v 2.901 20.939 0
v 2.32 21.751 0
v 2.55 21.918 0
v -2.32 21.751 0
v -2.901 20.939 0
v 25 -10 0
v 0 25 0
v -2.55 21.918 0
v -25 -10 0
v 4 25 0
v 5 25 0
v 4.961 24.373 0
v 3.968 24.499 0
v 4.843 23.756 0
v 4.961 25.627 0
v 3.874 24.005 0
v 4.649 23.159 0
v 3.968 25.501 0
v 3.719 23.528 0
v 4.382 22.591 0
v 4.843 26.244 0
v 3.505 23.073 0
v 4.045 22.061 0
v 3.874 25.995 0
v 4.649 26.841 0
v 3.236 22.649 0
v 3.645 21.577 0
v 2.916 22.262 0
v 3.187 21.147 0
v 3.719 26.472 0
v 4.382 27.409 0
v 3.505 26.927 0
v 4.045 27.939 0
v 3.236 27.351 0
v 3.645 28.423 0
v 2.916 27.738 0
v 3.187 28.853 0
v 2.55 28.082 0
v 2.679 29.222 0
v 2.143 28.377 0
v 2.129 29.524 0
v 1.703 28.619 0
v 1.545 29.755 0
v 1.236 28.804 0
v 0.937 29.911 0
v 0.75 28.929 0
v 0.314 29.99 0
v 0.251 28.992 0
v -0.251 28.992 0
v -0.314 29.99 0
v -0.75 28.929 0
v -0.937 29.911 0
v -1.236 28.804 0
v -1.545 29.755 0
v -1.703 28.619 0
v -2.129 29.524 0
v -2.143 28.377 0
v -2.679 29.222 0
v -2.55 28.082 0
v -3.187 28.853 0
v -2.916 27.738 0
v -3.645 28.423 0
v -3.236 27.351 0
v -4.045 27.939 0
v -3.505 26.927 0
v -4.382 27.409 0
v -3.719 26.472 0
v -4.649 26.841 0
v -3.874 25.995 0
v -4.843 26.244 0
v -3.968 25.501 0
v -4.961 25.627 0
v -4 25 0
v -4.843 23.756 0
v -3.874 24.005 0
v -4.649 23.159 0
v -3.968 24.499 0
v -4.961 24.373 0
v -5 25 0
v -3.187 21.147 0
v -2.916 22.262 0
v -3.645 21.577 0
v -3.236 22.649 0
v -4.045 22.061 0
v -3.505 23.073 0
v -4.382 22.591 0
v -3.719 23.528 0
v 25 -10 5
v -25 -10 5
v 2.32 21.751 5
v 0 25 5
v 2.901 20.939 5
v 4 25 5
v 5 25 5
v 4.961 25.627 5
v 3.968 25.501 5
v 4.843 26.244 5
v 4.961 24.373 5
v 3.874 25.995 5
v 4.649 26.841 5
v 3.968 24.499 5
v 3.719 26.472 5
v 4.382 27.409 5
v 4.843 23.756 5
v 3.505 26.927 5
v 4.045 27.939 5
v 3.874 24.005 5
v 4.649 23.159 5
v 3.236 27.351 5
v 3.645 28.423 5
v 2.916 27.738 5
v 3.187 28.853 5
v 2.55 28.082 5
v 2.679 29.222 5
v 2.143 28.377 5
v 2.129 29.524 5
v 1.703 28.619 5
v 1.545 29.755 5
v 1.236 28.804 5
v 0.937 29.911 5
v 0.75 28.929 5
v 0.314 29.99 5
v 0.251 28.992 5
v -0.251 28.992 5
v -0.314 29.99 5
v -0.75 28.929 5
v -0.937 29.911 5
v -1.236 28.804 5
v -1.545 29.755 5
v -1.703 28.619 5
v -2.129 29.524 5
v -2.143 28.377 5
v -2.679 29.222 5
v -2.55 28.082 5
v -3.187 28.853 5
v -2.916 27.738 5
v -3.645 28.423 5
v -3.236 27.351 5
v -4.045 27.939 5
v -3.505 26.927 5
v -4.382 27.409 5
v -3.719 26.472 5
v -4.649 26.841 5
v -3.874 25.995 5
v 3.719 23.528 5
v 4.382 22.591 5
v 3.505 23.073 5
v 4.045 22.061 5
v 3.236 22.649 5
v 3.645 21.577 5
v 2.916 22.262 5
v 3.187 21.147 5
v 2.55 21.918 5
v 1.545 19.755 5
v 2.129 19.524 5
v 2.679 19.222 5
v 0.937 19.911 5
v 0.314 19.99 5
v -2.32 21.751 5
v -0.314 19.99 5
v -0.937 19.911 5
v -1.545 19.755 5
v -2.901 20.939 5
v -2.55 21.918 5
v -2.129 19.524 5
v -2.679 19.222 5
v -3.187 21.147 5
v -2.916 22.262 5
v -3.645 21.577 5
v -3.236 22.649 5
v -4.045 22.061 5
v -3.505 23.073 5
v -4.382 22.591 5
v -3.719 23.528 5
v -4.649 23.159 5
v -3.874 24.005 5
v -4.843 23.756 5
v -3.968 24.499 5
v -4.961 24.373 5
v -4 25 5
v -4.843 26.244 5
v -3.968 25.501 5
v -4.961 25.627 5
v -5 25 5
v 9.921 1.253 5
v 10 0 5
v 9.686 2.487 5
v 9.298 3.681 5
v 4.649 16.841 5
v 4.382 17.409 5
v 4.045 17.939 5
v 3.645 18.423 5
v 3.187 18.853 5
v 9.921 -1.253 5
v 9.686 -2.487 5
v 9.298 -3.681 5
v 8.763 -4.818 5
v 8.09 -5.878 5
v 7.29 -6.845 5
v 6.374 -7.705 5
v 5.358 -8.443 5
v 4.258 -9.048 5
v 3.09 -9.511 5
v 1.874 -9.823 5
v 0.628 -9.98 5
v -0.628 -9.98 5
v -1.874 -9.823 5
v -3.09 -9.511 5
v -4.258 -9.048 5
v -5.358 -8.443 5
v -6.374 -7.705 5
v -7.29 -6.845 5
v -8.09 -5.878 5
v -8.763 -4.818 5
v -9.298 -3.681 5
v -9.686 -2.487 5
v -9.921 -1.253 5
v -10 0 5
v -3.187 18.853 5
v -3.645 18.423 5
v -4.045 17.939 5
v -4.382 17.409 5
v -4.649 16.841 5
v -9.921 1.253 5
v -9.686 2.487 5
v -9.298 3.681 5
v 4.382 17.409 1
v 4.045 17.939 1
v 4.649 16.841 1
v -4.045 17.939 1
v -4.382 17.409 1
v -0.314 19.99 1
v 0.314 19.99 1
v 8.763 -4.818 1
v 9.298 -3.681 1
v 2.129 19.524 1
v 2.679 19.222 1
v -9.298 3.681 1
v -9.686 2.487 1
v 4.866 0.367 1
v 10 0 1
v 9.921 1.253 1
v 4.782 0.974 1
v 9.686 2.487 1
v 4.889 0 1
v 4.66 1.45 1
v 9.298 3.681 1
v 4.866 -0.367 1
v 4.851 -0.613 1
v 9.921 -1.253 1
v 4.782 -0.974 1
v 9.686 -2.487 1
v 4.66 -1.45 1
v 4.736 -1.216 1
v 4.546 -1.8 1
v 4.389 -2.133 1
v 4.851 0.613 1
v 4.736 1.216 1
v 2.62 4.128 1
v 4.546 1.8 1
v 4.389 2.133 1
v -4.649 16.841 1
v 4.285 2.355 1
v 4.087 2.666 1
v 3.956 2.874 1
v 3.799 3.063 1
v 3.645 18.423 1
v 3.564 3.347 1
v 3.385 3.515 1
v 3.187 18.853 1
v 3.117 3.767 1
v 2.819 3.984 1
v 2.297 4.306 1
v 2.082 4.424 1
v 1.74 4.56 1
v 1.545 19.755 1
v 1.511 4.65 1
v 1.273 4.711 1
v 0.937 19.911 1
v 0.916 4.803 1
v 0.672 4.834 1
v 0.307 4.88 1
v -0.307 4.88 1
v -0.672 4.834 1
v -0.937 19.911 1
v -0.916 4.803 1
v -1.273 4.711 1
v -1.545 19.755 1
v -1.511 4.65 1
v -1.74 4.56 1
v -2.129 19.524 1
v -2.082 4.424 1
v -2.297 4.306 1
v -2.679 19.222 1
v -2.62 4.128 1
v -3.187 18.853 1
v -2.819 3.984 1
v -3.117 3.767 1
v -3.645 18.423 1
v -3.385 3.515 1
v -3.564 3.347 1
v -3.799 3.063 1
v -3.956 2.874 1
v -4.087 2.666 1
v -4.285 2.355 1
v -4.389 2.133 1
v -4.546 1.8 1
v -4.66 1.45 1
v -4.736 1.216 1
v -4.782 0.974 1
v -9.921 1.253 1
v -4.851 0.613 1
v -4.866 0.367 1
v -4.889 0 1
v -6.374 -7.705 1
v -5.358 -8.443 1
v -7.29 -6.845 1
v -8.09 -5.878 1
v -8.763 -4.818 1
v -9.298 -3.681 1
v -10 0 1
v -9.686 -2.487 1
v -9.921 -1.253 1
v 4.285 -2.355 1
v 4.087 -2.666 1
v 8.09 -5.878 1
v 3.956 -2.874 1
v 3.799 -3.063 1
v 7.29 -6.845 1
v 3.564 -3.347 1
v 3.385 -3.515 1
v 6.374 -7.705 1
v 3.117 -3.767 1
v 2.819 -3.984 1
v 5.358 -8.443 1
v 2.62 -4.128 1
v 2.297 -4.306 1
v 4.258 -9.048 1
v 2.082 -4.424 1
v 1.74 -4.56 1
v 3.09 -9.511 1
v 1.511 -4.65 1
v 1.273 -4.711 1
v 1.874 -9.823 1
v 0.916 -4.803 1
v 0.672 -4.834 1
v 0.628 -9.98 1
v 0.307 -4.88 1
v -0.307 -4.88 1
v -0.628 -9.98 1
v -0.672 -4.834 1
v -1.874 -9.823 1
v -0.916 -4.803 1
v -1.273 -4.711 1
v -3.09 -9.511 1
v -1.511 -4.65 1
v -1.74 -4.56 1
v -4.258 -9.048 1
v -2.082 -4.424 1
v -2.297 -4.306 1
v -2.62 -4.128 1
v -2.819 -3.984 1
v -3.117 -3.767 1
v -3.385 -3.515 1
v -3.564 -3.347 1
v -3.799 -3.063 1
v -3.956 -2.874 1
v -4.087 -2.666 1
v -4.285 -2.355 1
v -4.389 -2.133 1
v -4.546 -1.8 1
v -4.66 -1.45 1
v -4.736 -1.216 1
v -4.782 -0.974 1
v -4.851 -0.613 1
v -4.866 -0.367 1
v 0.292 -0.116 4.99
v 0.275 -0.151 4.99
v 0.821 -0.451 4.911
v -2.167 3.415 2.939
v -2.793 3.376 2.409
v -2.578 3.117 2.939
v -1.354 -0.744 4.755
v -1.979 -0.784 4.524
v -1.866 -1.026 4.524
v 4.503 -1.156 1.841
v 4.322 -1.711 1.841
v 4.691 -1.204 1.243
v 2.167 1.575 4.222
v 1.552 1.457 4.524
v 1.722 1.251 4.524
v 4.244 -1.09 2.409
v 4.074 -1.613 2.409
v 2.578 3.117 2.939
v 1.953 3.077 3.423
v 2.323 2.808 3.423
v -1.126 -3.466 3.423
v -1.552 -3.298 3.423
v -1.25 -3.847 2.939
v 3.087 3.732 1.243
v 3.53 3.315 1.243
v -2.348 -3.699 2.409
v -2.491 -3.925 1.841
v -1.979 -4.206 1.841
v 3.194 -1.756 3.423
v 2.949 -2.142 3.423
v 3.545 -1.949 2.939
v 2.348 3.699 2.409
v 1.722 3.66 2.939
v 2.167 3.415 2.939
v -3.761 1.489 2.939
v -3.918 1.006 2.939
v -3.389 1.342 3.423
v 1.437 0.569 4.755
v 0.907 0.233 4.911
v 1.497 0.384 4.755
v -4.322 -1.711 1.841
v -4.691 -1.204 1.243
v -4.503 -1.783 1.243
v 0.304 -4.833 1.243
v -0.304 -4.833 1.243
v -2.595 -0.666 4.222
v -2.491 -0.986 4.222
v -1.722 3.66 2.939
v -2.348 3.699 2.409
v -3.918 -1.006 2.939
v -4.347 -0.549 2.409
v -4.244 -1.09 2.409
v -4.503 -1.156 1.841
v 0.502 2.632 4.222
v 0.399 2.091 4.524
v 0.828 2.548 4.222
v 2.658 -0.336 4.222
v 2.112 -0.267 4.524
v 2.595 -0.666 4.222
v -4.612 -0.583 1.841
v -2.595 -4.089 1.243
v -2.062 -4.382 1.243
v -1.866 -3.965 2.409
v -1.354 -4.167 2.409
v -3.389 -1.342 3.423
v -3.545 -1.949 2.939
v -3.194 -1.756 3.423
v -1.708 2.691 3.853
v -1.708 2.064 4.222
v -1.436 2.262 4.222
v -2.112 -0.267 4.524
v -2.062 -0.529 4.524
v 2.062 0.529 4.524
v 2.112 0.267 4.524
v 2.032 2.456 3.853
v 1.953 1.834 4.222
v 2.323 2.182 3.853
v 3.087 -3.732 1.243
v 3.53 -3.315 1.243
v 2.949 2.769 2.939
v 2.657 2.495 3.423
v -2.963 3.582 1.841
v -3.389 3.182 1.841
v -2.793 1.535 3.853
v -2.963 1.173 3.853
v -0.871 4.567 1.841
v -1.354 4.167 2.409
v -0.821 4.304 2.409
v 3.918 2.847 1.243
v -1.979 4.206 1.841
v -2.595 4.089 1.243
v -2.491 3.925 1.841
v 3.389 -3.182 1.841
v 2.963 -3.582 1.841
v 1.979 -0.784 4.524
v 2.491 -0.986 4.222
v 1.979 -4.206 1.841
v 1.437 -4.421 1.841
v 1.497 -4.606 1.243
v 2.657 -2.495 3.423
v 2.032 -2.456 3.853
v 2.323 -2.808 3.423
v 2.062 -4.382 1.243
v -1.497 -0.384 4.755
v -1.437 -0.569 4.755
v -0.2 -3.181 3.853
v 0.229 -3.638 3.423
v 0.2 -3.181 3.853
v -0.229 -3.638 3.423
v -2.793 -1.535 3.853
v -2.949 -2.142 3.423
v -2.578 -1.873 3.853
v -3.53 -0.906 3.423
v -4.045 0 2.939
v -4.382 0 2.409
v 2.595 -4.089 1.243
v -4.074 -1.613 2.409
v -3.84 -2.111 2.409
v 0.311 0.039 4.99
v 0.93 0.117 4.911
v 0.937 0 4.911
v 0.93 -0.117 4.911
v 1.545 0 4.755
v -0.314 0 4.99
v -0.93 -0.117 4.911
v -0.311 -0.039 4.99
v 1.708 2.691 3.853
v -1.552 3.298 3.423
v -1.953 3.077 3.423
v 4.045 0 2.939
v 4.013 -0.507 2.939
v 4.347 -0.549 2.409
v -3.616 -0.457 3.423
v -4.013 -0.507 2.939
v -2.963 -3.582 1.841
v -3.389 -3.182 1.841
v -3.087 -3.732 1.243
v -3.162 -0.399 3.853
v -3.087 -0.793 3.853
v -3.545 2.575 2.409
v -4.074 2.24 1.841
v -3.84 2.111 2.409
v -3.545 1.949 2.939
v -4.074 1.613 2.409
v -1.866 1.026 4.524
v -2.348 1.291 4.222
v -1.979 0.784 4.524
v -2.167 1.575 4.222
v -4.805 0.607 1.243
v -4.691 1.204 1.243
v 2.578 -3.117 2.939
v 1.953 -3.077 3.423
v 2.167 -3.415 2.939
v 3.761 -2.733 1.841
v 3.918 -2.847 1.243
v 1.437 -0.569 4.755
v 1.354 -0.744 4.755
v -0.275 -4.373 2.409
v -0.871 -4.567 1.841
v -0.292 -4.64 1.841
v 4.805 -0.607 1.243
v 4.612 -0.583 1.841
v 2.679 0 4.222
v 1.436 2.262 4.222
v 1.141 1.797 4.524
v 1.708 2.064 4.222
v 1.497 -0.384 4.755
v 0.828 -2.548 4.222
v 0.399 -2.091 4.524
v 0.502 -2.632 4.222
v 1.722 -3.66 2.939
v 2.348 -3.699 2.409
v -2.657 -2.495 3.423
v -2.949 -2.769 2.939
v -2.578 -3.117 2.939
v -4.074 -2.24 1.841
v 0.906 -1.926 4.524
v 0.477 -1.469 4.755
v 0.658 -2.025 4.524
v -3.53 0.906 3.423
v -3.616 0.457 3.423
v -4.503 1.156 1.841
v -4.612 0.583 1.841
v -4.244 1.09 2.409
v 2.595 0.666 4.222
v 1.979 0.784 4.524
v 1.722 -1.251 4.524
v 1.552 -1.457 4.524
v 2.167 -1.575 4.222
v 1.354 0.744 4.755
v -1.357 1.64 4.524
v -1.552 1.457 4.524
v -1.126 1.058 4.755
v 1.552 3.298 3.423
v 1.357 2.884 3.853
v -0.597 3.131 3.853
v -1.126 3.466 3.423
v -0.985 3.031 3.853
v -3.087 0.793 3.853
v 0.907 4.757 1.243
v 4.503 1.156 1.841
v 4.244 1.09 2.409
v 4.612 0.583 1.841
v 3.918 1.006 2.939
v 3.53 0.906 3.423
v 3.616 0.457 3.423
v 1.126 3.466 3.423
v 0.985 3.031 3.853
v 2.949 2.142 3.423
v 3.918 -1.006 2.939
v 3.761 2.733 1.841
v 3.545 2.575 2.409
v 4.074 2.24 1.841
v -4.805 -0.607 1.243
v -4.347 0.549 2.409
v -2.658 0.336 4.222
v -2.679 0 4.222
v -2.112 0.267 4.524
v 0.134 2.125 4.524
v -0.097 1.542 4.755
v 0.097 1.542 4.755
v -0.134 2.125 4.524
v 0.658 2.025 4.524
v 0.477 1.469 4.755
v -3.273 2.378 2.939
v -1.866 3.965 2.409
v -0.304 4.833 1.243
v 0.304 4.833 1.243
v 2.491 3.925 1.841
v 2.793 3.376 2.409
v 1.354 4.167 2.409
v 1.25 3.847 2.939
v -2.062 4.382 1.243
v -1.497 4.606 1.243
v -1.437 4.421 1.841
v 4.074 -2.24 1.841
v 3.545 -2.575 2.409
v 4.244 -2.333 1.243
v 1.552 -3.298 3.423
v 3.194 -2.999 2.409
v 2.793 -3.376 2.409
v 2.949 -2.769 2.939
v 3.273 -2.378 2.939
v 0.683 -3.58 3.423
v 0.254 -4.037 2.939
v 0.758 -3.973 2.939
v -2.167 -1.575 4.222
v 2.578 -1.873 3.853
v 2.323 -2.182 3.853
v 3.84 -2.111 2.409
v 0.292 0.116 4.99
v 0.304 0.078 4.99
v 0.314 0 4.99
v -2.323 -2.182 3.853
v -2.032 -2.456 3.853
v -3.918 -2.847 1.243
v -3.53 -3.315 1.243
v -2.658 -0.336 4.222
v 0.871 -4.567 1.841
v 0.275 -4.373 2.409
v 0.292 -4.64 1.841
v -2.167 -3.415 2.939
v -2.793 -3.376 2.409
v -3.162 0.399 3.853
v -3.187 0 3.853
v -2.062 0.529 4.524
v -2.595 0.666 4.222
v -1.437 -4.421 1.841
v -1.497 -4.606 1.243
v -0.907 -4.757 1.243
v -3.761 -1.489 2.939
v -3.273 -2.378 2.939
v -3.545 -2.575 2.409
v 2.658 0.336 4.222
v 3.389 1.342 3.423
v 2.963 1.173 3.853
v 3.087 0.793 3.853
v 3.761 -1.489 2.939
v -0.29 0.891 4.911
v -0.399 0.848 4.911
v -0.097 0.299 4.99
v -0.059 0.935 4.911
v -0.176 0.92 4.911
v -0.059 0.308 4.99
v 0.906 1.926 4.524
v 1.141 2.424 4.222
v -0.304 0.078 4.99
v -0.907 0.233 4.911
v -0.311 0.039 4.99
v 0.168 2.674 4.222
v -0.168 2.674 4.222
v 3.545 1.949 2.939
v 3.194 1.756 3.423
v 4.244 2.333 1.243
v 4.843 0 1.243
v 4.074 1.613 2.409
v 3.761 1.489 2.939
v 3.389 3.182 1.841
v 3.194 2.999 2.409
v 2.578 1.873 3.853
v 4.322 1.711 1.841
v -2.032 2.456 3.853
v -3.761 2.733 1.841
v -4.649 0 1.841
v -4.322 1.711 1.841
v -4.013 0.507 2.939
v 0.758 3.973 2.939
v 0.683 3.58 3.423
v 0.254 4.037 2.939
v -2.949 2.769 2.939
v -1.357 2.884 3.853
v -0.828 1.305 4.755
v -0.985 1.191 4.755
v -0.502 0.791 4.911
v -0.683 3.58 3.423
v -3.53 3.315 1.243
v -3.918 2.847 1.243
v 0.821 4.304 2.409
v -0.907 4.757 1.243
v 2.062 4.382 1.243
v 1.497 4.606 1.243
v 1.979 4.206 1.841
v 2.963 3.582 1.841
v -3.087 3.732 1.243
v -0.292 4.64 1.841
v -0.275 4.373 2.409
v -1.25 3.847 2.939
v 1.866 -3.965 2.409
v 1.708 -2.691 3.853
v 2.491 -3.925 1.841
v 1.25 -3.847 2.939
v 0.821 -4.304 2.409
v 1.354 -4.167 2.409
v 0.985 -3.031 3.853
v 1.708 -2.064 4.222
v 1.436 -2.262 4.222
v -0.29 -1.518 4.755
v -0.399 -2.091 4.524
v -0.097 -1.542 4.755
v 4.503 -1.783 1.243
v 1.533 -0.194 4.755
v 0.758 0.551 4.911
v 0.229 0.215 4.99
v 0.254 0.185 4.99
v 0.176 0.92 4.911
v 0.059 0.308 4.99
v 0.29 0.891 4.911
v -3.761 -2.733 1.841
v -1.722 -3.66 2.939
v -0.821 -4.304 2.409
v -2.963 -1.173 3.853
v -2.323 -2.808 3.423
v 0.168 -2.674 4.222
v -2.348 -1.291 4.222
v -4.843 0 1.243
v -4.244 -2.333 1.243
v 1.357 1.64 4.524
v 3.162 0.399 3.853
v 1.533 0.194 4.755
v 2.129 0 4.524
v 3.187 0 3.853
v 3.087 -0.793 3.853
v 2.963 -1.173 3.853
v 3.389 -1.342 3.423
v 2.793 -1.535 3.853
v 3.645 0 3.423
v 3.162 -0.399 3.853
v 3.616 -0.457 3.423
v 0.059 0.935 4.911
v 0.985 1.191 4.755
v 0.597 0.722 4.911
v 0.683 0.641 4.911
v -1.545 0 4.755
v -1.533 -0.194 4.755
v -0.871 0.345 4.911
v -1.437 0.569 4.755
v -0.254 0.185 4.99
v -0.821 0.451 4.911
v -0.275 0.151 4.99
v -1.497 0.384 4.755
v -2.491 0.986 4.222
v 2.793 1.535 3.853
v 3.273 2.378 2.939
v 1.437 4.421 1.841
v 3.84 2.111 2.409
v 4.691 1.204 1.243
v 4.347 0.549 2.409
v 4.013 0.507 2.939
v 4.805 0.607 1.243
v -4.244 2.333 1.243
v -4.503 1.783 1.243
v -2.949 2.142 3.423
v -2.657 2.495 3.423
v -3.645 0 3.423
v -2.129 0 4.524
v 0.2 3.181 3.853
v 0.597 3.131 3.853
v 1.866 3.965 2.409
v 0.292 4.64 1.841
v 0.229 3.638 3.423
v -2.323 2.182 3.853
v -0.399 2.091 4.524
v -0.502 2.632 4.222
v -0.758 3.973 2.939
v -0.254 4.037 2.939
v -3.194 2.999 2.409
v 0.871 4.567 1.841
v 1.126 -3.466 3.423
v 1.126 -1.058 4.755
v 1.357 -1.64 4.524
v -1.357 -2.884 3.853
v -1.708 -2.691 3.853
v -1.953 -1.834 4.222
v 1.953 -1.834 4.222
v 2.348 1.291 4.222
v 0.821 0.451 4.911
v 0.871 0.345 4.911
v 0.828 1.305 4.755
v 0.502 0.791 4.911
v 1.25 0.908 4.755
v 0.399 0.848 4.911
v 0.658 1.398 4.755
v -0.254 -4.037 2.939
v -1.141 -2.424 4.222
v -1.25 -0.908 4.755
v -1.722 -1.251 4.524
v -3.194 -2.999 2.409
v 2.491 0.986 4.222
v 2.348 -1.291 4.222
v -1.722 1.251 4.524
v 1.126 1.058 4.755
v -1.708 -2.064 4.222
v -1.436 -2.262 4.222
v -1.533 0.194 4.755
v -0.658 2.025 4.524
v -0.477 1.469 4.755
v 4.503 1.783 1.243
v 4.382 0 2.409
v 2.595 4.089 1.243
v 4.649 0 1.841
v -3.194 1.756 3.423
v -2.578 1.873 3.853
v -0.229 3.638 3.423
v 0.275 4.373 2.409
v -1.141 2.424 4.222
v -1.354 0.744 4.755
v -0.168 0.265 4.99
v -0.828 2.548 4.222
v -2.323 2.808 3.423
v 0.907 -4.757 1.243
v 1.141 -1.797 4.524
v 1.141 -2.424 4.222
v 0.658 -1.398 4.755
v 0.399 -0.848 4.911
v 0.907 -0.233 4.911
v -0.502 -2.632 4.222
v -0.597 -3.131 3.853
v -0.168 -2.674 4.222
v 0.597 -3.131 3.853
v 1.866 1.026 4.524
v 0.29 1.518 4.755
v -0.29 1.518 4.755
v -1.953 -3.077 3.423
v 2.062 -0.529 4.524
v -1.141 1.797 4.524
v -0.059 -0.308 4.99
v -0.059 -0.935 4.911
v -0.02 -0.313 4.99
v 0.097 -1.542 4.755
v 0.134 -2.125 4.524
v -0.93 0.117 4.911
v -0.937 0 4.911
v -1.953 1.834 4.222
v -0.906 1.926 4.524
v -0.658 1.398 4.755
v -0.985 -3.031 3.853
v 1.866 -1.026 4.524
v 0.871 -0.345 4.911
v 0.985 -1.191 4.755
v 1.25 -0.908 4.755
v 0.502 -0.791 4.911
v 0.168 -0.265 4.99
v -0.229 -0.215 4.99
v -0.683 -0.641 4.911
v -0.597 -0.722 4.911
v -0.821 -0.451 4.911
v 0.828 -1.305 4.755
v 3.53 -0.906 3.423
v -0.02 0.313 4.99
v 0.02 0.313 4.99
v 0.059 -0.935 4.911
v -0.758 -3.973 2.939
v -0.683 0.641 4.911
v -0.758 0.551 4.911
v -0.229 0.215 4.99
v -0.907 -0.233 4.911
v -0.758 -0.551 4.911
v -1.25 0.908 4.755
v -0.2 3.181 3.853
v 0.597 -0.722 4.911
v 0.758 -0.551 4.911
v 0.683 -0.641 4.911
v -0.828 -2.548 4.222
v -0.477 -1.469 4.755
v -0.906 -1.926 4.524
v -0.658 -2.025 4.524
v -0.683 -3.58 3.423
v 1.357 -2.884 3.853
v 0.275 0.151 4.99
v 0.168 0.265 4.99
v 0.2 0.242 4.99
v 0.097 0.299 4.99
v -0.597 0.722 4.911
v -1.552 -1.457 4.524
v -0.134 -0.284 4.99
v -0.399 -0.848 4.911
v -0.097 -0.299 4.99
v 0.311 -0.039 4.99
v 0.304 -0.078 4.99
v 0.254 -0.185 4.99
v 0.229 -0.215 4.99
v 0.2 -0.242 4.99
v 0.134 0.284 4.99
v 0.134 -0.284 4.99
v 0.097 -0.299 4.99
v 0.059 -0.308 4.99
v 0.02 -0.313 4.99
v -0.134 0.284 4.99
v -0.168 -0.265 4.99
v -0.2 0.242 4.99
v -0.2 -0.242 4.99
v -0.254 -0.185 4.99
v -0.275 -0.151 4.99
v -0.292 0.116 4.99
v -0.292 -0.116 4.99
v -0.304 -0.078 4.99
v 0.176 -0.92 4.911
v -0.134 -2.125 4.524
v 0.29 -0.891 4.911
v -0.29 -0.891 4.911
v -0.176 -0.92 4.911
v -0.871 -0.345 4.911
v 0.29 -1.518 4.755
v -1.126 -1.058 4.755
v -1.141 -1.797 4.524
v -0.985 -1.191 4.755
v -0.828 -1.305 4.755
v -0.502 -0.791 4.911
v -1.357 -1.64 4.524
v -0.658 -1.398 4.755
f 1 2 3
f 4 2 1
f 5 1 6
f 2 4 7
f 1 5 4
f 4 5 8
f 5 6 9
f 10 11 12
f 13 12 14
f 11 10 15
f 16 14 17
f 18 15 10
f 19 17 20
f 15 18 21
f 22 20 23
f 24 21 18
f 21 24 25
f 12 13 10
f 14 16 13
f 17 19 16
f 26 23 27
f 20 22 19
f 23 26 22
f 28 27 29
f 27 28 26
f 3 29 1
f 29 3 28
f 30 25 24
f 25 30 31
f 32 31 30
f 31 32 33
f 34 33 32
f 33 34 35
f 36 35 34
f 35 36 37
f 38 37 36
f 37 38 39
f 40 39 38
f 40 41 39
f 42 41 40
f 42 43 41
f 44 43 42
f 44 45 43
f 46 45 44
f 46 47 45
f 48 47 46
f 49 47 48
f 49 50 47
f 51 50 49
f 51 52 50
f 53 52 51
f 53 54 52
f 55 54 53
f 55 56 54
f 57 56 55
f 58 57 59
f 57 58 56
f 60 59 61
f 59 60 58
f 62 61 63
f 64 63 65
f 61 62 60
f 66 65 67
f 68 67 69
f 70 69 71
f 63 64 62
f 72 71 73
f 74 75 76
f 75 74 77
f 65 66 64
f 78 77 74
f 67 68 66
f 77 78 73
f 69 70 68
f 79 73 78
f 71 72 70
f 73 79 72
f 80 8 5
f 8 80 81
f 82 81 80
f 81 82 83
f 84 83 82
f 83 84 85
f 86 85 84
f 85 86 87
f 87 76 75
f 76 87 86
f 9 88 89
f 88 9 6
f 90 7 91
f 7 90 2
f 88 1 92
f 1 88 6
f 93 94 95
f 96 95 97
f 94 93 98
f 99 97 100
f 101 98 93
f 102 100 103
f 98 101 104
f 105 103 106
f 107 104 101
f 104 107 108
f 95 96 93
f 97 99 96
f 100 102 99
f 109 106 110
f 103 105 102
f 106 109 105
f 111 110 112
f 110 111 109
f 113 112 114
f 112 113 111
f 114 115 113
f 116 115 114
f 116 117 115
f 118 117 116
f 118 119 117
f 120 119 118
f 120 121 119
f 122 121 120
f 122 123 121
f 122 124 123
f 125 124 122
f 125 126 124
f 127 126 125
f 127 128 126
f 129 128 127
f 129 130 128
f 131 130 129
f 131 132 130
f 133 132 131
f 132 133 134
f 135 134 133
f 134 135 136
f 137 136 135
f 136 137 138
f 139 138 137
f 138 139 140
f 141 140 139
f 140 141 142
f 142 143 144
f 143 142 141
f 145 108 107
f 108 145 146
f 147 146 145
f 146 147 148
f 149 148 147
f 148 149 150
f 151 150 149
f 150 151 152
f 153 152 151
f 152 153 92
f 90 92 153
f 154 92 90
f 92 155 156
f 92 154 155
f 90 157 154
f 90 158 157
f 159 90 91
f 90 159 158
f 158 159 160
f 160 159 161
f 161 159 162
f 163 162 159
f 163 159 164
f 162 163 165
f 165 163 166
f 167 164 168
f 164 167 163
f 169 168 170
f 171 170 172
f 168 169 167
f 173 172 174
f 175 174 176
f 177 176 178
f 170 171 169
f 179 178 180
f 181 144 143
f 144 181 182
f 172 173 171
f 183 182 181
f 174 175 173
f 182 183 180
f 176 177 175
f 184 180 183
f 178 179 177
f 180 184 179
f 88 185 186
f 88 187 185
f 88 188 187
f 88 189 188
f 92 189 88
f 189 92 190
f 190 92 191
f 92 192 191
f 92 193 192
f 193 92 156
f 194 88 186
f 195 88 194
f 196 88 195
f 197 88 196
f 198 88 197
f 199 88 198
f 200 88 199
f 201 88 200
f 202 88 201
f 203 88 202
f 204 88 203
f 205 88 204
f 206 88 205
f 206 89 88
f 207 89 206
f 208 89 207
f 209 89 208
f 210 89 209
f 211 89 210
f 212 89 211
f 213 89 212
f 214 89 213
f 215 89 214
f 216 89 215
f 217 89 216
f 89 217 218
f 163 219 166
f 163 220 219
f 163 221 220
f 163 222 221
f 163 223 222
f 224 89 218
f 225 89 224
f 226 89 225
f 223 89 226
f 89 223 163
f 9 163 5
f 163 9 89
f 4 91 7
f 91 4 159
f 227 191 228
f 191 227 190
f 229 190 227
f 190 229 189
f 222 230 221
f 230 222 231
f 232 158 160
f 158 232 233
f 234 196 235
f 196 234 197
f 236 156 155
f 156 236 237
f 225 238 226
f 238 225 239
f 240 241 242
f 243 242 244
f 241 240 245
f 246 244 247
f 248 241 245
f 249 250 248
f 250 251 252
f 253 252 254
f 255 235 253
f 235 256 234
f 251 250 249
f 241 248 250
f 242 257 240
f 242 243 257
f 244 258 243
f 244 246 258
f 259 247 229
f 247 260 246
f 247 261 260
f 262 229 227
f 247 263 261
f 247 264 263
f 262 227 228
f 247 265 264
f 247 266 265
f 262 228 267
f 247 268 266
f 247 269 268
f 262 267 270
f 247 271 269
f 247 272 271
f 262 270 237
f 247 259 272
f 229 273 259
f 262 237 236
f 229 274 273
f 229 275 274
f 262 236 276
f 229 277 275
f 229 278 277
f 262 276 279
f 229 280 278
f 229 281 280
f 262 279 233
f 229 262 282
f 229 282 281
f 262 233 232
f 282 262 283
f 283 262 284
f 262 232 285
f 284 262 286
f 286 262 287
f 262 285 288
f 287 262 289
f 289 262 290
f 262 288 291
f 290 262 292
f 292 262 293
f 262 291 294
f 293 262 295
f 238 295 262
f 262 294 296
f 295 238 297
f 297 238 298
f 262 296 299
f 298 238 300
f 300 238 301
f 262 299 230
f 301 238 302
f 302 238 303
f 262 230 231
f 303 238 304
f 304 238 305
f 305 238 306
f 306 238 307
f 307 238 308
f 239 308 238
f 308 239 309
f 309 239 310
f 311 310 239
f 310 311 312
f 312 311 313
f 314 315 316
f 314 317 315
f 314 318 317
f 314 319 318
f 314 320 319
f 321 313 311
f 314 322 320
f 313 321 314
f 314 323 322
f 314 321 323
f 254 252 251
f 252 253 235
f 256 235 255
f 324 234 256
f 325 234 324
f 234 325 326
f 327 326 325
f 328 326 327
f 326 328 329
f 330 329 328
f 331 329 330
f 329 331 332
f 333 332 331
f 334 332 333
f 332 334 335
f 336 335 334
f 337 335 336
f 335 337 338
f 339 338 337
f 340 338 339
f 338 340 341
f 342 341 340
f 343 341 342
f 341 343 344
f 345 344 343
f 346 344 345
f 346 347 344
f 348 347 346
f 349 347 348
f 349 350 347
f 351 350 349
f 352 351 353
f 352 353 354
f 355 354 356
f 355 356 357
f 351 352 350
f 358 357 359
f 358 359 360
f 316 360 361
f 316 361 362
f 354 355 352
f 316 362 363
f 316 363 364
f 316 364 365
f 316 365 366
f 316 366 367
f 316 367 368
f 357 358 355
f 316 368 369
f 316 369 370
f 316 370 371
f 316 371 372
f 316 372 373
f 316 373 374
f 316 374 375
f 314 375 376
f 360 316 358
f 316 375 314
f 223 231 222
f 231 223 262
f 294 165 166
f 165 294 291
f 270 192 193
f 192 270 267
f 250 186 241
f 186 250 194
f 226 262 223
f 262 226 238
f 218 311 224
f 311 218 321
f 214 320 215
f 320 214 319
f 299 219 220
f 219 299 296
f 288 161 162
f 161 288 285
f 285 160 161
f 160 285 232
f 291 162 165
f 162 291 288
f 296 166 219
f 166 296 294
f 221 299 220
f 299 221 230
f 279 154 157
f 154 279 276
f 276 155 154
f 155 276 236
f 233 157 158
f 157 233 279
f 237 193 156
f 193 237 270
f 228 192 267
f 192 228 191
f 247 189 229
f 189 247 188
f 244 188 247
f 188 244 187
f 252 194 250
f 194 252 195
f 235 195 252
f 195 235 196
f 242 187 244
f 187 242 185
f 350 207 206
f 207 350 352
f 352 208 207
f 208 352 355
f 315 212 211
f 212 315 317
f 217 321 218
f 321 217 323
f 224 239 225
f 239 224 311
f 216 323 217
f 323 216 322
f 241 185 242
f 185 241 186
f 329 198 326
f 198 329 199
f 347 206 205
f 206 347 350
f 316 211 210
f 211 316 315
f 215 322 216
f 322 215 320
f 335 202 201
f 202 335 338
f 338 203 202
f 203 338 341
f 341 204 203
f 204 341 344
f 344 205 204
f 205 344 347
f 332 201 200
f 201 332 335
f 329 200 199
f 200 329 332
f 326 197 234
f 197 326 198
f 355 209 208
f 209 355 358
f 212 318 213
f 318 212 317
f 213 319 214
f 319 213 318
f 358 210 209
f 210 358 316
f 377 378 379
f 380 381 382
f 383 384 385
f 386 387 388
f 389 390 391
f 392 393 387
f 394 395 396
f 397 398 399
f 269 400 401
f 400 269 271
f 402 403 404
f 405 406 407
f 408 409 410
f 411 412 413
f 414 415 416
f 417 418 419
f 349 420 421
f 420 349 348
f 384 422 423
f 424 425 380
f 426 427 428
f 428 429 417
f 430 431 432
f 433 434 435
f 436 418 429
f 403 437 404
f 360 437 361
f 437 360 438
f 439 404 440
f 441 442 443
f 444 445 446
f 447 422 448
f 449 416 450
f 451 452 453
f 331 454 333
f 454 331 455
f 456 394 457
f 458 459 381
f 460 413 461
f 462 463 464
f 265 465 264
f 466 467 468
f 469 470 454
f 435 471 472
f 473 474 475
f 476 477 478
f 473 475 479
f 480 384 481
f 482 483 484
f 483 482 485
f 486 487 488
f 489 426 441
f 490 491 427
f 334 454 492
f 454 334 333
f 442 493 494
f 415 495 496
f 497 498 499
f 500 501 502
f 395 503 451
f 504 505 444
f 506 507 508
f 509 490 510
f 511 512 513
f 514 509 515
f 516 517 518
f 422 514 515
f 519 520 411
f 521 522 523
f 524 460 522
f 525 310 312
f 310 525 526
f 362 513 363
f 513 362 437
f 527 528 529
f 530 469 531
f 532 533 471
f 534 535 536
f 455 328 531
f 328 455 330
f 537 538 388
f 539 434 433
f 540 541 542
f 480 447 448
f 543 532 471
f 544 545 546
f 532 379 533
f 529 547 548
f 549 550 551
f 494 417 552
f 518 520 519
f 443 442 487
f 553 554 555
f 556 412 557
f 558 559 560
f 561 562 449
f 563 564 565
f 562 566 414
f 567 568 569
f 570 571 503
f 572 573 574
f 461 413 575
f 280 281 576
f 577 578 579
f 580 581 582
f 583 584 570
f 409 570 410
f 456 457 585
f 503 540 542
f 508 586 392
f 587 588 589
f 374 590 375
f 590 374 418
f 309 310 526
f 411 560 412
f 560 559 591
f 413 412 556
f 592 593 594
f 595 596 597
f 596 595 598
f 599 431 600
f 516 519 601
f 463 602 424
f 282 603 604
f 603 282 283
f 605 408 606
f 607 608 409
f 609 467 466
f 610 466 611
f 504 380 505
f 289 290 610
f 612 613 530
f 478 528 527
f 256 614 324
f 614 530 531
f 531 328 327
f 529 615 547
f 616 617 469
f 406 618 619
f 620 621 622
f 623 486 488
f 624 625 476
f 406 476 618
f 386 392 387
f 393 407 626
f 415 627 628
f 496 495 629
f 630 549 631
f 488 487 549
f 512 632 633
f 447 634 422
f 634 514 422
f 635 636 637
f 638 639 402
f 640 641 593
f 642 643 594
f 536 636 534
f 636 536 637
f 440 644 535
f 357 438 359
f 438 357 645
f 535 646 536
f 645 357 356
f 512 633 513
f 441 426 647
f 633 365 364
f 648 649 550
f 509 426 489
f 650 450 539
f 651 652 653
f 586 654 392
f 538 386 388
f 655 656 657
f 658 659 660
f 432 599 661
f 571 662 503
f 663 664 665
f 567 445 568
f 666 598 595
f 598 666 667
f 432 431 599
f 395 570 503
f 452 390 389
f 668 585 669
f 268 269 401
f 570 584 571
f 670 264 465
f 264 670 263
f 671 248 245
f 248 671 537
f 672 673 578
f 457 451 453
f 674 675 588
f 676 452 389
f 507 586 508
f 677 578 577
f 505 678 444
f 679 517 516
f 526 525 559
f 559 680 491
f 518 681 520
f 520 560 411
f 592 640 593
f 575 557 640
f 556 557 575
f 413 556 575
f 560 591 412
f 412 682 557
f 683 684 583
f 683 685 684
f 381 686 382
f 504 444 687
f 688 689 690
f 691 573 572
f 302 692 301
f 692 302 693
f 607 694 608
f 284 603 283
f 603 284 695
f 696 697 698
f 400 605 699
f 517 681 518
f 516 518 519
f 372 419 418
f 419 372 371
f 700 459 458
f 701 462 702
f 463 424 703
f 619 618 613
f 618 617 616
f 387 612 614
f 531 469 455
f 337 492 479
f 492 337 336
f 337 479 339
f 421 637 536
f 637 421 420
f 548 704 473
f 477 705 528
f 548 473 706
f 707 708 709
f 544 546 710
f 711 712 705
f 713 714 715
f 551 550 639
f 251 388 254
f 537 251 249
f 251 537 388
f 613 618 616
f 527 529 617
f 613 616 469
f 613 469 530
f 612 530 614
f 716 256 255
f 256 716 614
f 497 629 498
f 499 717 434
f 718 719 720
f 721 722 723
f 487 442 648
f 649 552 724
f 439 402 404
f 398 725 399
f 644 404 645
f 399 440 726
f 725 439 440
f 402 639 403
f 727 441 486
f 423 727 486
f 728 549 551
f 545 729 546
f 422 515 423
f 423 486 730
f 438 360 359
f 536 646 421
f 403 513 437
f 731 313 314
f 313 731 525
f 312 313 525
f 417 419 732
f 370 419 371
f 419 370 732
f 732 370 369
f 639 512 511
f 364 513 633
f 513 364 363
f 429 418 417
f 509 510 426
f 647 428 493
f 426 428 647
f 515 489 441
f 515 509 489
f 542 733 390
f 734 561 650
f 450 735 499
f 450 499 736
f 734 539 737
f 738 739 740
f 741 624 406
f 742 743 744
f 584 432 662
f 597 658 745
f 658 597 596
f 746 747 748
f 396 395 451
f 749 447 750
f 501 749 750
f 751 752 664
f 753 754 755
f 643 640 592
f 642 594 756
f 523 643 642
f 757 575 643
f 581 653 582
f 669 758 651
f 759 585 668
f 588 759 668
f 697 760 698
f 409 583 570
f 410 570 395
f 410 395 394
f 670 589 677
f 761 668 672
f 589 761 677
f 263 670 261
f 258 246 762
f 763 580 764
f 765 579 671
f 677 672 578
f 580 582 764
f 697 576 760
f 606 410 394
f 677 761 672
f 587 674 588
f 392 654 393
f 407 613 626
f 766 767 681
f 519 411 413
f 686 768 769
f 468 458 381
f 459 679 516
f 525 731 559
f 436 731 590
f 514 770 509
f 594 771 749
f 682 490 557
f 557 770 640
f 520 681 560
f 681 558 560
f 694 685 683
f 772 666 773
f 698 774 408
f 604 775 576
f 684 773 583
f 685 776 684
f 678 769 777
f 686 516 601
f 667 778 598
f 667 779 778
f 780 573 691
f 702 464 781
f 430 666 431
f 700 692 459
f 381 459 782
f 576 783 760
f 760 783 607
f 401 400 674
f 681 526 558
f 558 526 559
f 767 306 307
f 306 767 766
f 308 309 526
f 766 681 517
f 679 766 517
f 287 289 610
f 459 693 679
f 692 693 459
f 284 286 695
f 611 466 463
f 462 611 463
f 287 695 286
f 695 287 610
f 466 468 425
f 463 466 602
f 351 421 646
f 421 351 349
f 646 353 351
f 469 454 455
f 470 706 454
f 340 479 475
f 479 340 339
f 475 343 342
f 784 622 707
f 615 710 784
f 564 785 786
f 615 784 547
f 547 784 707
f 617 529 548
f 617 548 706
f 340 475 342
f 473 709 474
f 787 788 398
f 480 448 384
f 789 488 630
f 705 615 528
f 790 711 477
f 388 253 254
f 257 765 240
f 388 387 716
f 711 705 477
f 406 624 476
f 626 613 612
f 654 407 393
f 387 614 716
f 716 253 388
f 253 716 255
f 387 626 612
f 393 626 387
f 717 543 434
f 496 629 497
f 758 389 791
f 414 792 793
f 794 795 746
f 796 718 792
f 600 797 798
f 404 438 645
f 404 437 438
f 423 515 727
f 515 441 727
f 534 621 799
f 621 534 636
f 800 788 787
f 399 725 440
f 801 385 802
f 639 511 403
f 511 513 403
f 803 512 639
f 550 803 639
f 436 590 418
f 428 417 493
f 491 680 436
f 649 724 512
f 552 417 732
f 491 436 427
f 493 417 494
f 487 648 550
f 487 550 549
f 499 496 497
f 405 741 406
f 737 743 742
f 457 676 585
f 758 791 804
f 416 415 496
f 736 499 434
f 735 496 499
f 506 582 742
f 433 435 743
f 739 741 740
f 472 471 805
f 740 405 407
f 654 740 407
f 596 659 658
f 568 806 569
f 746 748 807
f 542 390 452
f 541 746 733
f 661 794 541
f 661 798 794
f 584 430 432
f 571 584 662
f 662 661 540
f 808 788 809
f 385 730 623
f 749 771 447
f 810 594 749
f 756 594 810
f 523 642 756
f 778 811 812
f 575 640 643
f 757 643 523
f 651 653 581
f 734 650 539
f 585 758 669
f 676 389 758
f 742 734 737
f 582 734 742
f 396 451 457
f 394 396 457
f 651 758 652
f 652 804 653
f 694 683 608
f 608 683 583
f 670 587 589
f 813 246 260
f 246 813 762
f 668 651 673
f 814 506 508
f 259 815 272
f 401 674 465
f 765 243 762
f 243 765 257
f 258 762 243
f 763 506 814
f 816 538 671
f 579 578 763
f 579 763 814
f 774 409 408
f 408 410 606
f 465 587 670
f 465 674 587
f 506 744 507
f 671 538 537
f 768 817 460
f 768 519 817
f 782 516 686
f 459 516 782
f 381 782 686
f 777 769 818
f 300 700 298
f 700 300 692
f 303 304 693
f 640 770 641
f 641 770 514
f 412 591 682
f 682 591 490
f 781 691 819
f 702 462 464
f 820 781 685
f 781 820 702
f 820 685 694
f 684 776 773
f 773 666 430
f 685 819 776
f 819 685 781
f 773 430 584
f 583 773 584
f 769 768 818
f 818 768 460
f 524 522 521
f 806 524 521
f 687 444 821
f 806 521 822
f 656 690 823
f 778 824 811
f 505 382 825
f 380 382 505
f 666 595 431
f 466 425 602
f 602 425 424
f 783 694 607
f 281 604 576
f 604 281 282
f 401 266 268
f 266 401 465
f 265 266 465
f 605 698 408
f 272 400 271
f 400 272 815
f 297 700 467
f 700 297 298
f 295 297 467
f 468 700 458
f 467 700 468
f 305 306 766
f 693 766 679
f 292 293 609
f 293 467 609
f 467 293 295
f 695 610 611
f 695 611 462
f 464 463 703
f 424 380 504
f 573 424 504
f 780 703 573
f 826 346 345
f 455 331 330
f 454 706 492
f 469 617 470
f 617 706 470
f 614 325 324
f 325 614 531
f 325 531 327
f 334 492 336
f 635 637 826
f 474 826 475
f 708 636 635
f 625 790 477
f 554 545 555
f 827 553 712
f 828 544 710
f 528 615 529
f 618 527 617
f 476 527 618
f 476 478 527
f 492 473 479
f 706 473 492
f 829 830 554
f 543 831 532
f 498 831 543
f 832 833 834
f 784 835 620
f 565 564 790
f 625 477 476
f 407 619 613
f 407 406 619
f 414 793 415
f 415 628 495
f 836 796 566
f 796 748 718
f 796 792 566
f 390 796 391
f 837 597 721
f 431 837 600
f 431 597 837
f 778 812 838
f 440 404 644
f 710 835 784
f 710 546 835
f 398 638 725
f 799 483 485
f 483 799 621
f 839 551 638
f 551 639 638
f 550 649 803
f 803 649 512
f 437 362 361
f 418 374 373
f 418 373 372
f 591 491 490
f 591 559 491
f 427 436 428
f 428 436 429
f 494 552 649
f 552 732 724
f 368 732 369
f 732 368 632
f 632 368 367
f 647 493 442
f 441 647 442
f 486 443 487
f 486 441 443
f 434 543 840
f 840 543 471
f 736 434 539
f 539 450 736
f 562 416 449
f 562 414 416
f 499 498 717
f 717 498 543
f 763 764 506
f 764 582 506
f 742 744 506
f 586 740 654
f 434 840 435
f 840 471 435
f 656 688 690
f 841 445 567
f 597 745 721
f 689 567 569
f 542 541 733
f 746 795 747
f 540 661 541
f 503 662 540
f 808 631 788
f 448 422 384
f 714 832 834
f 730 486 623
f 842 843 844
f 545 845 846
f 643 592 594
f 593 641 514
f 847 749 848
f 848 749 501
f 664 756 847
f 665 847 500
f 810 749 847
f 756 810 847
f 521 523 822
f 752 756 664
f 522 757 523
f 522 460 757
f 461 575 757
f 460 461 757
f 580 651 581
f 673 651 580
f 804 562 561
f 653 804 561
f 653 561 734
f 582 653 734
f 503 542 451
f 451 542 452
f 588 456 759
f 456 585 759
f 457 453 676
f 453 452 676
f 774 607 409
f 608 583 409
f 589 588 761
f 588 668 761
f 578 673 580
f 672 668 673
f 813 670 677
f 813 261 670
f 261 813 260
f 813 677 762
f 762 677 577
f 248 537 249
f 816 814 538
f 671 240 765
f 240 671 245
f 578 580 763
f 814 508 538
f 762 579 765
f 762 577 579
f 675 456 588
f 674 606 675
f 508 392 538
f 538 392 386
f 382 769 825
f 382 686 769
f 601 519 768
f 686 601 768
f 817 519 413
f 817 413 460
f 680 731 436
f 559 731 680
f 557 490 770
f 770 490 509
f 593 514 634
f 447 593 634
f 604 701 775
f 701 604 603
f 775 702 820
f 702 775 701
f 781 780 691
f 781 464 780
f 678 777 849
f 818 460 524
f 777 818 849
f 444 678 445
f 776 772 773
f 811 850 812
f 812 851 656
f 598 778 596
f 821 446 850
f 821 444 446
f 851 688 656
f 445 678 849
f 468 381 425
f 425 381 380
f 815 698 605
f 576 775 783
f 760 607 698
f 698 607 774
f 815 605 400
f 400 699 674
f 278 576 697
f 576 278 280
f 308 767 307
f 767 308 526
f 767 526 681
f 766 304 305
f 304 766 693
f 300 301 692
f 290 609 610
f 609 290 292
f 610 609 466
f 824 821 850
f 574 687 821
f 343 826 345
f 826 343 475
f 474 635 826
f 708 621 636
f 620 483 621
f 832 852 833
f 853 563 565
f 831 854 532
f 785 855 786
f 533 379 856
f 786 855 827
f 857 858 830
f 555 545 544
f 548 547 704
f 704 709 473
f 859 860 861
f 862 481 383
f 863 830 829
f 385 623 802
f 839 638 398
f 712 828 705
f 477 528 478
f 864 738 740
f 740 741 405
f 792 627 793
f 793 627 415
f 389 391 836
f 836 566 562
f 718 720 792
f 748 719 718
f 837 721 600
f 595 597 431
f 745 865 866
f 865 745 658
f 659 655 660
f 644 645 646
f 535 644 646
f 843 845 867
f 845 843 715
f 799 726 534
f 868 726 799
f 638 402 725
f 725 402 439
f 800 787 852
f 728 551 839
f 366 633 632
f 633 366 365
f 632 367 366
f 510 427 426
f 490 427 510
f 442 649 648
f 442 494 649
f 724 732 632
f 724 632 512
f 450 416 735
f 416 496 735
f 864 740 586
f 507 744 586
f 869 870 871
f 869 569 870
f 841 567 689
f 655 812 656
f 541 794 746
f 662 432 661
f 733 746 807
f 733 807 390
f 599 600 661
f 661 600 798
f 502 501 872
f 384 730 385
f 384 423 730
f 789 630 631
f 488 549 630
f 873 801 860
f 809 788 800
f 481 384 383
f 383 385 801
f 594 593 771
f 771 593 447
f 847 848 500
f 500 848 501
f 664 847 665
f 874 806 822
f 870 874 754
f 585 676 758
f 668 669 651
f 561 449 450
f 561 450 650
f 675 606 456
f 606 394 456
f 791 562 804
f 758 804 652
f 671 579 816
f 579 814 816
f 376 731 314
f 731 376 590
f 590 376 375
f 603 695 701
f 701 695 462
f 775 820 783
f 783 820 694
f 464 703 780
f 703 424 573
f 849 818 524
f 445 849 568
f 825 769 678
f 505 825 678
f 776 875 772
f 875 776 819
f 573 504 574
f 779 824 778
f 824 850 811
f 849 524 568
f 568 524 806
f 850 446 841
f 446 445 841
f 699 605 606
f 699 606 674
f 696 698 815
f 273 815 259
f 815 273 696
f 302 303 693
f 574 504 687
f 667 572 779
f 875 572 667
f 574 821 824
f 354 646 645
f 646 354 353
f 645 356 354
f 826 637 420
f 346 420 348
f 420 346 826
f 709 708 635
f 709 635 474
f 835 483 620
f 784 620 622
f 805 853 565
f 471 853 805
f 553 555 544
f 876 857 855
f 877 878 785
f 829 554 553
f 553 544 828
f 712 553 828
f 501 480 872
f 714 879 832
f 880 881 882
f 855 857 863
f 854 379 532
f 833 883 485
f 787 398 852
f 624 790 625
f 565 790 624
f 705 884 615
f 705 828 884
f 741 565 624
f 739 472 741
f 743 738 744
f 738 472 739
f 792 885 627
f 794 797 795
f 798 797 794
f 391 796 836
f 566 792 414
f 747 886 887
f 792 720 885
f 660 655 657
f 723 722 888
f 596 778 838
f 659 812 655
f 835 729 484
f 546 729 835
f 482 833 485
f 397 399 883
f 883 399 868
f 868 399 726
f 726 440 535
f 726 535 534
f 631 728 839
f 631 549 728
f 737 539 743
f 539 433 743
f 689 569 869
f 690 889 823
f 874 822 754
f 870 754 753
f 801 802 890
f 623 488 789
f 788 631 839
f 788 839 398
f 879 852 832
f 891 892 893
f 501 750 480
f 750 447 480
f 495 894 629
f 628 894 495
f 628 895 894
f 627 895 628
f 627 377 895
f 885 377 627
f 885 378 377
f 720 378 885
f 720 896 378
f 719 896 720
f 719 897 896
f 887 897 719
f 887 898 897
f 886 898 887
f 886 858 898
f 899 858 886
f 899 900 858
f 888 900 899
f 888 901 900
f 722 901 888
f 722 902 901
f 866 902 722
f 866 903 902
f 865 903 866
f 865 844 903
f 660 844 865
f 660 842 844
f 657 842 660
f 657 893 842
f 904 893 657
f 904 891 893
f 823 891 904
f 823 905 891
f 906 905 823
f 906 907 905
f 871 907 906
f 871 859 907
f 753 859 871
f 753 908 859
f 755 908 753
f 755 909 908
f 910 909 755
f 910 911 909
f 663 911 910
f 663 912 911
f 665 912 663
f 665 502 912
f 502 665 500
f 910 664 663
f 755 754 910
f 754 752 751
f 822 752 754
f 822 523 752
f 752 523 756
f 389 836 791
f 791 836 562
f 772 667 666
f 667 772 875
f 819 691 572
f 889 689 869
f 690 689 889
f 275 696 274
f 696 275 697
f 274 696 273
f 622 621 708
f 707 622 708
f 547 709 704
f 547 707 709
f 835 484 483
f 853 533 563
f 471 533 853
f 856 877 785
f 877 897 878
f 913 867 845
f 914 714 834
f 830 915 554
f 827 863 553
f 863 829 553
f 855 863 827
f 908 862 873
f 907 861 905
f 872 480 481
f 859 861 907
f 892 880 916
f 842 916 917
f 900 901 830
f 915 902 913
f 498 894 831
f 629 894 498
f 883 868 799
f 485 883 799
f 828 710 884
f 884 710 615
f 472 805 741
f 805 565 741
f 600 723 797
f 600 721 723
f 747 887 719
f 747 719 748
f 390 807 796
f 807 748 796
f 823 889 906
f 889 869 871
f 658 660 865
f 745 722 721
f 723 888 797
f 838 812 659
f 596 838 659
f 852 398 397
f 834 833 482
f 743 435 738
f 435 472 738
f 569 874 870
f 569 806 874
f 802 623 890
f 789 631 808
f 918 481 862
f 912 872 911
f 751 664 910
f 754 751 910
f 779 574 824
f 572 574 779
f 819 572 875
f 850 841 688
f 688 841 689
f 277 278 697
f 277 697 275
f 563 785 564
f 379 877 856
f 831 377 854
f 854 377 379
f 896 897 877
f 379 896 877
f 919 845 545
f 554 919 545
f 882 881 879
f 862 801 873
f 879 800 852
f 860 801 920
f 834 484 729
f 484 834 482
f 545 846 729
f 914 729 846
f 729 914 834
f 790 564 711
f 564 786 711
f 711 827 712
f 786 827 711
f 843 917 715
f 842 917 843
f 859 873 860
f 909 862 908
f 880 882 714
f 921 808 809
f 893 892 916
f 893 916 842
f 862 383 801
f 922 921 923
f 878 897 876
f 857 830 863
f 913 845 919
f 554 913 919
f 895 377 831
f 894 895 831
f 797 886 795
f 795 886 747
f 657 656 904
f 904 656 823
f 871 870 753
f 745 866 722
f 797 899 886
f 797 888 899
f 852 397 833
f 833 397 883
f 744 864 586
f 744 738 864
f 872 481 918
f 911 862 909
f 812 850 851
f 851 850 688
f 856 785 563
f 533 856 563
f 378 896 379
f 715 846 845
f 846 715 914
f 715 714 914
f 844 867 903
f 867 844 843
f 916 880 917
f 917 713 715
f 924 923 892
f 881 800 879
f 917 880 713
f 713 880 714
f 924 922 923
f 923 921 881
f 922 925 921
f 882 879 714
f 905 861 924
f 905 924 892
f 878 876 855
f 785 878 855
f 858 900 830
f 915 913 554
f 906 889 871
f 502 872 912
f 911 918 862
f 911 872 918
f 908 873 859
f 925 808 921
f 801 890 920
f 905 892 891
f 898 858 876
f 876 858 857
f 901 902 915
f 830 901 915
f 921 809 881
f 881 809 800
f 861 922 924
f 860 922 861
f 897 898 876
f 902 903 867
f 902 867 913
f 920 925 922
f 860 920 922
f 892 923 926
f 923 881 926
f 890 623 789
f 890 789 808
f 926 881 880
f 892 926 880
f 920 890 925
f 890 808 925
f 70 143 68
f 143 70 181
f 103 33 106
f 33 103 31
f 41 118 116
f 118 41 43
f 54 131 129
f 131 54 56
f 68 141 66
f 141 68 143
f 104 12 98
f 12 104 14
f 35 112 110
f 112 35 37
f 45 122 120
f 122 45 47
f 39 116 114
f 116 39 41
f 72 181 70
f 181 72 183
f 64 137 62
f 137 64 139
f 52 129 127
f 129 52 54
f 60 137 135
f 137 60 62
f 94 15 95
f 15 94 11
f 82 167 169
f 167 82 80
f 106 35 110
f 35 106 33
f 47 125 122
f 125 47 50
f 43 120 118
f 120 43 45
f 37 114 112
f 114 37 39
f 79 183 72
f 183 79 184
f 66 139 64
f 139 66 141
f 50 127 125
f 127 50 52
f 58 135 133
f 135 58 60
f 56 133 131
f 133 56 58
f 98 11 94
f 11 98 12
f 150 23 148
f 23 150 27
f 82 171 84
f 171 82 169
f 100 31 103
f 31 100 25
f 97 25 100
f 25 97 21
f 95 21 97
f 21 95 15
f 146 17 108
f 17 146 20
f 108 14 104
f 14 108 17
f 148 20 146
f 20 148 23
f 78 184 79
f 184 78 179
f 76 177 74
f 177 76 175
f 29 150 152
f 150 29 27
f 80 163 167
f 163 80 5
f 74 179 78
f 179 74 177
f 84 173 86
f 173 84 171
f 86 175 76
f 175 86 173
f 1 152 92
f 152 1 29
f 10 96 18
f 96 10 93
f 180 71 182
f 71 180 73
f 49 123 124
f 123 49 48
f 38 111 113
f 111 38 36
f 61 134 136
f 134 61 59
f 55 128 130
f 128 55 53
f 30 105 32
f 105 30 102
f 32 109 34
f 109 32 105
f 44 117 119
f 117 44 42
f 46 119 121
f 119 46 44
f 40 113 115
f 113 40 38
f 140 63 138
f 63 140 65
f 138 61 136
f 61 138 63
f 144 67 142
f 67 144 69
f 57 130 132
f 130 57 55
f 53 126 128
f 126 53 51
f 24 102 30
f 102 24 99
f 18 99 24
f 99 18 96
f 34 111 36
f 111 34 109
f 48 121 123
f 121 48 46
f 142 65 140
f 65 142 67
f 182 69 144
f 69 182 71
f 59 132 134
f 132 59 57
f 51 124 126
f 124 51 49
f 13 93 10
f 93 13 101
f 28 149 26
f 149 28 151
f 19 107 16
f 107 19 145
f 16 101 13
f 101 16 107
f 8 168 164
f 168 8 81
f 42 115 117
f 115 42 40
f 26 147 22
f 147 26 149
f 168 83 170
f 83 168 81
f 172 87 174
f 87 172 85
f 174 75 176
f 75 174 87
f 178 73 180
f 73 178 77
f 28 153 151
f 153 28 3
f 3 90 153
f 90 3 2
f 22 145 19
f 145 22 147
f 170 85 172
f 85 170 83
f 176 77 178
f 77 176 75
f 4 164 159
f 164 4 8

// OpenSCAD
pit=10;

difference(){
    
    // pyramid
    linear_extrude(height=5){
        polygon(
            points=[[-(pit*2.5),-pit], [0,(pit*2.5)], [(pit*2.5),-pit]],
            faces=[[0,1,2]]
         );
    }
    
    // avocado cut-out
    translate([0,0,1]){
        hull(){
            translate([0,(pit*1.5),0]){
                cylinder(r=pit/2,h=5,$fn=(pit*5));
            }
            cylinder(r=pit,h=5,$fn=(pit*5));
        }
    }
}

// pit
difference(){
    sphere(r=pit/2,h=5,$fn=(pit*5));
    // pit cut-off
    translate([-pit*2.5,-pit,-5]){
       #cube([pit*5,pit*5,5]);
    }
}

translate([0,(pit*2.5),0]){
    difference(){
        cylinder(r=(pit/2),h=5,$fn=(pit*5));
        translate([0,0,-1]){
            cylinder(r=(pit/2.5),h=7,$fn=(pit*5));
        }
    }
}
